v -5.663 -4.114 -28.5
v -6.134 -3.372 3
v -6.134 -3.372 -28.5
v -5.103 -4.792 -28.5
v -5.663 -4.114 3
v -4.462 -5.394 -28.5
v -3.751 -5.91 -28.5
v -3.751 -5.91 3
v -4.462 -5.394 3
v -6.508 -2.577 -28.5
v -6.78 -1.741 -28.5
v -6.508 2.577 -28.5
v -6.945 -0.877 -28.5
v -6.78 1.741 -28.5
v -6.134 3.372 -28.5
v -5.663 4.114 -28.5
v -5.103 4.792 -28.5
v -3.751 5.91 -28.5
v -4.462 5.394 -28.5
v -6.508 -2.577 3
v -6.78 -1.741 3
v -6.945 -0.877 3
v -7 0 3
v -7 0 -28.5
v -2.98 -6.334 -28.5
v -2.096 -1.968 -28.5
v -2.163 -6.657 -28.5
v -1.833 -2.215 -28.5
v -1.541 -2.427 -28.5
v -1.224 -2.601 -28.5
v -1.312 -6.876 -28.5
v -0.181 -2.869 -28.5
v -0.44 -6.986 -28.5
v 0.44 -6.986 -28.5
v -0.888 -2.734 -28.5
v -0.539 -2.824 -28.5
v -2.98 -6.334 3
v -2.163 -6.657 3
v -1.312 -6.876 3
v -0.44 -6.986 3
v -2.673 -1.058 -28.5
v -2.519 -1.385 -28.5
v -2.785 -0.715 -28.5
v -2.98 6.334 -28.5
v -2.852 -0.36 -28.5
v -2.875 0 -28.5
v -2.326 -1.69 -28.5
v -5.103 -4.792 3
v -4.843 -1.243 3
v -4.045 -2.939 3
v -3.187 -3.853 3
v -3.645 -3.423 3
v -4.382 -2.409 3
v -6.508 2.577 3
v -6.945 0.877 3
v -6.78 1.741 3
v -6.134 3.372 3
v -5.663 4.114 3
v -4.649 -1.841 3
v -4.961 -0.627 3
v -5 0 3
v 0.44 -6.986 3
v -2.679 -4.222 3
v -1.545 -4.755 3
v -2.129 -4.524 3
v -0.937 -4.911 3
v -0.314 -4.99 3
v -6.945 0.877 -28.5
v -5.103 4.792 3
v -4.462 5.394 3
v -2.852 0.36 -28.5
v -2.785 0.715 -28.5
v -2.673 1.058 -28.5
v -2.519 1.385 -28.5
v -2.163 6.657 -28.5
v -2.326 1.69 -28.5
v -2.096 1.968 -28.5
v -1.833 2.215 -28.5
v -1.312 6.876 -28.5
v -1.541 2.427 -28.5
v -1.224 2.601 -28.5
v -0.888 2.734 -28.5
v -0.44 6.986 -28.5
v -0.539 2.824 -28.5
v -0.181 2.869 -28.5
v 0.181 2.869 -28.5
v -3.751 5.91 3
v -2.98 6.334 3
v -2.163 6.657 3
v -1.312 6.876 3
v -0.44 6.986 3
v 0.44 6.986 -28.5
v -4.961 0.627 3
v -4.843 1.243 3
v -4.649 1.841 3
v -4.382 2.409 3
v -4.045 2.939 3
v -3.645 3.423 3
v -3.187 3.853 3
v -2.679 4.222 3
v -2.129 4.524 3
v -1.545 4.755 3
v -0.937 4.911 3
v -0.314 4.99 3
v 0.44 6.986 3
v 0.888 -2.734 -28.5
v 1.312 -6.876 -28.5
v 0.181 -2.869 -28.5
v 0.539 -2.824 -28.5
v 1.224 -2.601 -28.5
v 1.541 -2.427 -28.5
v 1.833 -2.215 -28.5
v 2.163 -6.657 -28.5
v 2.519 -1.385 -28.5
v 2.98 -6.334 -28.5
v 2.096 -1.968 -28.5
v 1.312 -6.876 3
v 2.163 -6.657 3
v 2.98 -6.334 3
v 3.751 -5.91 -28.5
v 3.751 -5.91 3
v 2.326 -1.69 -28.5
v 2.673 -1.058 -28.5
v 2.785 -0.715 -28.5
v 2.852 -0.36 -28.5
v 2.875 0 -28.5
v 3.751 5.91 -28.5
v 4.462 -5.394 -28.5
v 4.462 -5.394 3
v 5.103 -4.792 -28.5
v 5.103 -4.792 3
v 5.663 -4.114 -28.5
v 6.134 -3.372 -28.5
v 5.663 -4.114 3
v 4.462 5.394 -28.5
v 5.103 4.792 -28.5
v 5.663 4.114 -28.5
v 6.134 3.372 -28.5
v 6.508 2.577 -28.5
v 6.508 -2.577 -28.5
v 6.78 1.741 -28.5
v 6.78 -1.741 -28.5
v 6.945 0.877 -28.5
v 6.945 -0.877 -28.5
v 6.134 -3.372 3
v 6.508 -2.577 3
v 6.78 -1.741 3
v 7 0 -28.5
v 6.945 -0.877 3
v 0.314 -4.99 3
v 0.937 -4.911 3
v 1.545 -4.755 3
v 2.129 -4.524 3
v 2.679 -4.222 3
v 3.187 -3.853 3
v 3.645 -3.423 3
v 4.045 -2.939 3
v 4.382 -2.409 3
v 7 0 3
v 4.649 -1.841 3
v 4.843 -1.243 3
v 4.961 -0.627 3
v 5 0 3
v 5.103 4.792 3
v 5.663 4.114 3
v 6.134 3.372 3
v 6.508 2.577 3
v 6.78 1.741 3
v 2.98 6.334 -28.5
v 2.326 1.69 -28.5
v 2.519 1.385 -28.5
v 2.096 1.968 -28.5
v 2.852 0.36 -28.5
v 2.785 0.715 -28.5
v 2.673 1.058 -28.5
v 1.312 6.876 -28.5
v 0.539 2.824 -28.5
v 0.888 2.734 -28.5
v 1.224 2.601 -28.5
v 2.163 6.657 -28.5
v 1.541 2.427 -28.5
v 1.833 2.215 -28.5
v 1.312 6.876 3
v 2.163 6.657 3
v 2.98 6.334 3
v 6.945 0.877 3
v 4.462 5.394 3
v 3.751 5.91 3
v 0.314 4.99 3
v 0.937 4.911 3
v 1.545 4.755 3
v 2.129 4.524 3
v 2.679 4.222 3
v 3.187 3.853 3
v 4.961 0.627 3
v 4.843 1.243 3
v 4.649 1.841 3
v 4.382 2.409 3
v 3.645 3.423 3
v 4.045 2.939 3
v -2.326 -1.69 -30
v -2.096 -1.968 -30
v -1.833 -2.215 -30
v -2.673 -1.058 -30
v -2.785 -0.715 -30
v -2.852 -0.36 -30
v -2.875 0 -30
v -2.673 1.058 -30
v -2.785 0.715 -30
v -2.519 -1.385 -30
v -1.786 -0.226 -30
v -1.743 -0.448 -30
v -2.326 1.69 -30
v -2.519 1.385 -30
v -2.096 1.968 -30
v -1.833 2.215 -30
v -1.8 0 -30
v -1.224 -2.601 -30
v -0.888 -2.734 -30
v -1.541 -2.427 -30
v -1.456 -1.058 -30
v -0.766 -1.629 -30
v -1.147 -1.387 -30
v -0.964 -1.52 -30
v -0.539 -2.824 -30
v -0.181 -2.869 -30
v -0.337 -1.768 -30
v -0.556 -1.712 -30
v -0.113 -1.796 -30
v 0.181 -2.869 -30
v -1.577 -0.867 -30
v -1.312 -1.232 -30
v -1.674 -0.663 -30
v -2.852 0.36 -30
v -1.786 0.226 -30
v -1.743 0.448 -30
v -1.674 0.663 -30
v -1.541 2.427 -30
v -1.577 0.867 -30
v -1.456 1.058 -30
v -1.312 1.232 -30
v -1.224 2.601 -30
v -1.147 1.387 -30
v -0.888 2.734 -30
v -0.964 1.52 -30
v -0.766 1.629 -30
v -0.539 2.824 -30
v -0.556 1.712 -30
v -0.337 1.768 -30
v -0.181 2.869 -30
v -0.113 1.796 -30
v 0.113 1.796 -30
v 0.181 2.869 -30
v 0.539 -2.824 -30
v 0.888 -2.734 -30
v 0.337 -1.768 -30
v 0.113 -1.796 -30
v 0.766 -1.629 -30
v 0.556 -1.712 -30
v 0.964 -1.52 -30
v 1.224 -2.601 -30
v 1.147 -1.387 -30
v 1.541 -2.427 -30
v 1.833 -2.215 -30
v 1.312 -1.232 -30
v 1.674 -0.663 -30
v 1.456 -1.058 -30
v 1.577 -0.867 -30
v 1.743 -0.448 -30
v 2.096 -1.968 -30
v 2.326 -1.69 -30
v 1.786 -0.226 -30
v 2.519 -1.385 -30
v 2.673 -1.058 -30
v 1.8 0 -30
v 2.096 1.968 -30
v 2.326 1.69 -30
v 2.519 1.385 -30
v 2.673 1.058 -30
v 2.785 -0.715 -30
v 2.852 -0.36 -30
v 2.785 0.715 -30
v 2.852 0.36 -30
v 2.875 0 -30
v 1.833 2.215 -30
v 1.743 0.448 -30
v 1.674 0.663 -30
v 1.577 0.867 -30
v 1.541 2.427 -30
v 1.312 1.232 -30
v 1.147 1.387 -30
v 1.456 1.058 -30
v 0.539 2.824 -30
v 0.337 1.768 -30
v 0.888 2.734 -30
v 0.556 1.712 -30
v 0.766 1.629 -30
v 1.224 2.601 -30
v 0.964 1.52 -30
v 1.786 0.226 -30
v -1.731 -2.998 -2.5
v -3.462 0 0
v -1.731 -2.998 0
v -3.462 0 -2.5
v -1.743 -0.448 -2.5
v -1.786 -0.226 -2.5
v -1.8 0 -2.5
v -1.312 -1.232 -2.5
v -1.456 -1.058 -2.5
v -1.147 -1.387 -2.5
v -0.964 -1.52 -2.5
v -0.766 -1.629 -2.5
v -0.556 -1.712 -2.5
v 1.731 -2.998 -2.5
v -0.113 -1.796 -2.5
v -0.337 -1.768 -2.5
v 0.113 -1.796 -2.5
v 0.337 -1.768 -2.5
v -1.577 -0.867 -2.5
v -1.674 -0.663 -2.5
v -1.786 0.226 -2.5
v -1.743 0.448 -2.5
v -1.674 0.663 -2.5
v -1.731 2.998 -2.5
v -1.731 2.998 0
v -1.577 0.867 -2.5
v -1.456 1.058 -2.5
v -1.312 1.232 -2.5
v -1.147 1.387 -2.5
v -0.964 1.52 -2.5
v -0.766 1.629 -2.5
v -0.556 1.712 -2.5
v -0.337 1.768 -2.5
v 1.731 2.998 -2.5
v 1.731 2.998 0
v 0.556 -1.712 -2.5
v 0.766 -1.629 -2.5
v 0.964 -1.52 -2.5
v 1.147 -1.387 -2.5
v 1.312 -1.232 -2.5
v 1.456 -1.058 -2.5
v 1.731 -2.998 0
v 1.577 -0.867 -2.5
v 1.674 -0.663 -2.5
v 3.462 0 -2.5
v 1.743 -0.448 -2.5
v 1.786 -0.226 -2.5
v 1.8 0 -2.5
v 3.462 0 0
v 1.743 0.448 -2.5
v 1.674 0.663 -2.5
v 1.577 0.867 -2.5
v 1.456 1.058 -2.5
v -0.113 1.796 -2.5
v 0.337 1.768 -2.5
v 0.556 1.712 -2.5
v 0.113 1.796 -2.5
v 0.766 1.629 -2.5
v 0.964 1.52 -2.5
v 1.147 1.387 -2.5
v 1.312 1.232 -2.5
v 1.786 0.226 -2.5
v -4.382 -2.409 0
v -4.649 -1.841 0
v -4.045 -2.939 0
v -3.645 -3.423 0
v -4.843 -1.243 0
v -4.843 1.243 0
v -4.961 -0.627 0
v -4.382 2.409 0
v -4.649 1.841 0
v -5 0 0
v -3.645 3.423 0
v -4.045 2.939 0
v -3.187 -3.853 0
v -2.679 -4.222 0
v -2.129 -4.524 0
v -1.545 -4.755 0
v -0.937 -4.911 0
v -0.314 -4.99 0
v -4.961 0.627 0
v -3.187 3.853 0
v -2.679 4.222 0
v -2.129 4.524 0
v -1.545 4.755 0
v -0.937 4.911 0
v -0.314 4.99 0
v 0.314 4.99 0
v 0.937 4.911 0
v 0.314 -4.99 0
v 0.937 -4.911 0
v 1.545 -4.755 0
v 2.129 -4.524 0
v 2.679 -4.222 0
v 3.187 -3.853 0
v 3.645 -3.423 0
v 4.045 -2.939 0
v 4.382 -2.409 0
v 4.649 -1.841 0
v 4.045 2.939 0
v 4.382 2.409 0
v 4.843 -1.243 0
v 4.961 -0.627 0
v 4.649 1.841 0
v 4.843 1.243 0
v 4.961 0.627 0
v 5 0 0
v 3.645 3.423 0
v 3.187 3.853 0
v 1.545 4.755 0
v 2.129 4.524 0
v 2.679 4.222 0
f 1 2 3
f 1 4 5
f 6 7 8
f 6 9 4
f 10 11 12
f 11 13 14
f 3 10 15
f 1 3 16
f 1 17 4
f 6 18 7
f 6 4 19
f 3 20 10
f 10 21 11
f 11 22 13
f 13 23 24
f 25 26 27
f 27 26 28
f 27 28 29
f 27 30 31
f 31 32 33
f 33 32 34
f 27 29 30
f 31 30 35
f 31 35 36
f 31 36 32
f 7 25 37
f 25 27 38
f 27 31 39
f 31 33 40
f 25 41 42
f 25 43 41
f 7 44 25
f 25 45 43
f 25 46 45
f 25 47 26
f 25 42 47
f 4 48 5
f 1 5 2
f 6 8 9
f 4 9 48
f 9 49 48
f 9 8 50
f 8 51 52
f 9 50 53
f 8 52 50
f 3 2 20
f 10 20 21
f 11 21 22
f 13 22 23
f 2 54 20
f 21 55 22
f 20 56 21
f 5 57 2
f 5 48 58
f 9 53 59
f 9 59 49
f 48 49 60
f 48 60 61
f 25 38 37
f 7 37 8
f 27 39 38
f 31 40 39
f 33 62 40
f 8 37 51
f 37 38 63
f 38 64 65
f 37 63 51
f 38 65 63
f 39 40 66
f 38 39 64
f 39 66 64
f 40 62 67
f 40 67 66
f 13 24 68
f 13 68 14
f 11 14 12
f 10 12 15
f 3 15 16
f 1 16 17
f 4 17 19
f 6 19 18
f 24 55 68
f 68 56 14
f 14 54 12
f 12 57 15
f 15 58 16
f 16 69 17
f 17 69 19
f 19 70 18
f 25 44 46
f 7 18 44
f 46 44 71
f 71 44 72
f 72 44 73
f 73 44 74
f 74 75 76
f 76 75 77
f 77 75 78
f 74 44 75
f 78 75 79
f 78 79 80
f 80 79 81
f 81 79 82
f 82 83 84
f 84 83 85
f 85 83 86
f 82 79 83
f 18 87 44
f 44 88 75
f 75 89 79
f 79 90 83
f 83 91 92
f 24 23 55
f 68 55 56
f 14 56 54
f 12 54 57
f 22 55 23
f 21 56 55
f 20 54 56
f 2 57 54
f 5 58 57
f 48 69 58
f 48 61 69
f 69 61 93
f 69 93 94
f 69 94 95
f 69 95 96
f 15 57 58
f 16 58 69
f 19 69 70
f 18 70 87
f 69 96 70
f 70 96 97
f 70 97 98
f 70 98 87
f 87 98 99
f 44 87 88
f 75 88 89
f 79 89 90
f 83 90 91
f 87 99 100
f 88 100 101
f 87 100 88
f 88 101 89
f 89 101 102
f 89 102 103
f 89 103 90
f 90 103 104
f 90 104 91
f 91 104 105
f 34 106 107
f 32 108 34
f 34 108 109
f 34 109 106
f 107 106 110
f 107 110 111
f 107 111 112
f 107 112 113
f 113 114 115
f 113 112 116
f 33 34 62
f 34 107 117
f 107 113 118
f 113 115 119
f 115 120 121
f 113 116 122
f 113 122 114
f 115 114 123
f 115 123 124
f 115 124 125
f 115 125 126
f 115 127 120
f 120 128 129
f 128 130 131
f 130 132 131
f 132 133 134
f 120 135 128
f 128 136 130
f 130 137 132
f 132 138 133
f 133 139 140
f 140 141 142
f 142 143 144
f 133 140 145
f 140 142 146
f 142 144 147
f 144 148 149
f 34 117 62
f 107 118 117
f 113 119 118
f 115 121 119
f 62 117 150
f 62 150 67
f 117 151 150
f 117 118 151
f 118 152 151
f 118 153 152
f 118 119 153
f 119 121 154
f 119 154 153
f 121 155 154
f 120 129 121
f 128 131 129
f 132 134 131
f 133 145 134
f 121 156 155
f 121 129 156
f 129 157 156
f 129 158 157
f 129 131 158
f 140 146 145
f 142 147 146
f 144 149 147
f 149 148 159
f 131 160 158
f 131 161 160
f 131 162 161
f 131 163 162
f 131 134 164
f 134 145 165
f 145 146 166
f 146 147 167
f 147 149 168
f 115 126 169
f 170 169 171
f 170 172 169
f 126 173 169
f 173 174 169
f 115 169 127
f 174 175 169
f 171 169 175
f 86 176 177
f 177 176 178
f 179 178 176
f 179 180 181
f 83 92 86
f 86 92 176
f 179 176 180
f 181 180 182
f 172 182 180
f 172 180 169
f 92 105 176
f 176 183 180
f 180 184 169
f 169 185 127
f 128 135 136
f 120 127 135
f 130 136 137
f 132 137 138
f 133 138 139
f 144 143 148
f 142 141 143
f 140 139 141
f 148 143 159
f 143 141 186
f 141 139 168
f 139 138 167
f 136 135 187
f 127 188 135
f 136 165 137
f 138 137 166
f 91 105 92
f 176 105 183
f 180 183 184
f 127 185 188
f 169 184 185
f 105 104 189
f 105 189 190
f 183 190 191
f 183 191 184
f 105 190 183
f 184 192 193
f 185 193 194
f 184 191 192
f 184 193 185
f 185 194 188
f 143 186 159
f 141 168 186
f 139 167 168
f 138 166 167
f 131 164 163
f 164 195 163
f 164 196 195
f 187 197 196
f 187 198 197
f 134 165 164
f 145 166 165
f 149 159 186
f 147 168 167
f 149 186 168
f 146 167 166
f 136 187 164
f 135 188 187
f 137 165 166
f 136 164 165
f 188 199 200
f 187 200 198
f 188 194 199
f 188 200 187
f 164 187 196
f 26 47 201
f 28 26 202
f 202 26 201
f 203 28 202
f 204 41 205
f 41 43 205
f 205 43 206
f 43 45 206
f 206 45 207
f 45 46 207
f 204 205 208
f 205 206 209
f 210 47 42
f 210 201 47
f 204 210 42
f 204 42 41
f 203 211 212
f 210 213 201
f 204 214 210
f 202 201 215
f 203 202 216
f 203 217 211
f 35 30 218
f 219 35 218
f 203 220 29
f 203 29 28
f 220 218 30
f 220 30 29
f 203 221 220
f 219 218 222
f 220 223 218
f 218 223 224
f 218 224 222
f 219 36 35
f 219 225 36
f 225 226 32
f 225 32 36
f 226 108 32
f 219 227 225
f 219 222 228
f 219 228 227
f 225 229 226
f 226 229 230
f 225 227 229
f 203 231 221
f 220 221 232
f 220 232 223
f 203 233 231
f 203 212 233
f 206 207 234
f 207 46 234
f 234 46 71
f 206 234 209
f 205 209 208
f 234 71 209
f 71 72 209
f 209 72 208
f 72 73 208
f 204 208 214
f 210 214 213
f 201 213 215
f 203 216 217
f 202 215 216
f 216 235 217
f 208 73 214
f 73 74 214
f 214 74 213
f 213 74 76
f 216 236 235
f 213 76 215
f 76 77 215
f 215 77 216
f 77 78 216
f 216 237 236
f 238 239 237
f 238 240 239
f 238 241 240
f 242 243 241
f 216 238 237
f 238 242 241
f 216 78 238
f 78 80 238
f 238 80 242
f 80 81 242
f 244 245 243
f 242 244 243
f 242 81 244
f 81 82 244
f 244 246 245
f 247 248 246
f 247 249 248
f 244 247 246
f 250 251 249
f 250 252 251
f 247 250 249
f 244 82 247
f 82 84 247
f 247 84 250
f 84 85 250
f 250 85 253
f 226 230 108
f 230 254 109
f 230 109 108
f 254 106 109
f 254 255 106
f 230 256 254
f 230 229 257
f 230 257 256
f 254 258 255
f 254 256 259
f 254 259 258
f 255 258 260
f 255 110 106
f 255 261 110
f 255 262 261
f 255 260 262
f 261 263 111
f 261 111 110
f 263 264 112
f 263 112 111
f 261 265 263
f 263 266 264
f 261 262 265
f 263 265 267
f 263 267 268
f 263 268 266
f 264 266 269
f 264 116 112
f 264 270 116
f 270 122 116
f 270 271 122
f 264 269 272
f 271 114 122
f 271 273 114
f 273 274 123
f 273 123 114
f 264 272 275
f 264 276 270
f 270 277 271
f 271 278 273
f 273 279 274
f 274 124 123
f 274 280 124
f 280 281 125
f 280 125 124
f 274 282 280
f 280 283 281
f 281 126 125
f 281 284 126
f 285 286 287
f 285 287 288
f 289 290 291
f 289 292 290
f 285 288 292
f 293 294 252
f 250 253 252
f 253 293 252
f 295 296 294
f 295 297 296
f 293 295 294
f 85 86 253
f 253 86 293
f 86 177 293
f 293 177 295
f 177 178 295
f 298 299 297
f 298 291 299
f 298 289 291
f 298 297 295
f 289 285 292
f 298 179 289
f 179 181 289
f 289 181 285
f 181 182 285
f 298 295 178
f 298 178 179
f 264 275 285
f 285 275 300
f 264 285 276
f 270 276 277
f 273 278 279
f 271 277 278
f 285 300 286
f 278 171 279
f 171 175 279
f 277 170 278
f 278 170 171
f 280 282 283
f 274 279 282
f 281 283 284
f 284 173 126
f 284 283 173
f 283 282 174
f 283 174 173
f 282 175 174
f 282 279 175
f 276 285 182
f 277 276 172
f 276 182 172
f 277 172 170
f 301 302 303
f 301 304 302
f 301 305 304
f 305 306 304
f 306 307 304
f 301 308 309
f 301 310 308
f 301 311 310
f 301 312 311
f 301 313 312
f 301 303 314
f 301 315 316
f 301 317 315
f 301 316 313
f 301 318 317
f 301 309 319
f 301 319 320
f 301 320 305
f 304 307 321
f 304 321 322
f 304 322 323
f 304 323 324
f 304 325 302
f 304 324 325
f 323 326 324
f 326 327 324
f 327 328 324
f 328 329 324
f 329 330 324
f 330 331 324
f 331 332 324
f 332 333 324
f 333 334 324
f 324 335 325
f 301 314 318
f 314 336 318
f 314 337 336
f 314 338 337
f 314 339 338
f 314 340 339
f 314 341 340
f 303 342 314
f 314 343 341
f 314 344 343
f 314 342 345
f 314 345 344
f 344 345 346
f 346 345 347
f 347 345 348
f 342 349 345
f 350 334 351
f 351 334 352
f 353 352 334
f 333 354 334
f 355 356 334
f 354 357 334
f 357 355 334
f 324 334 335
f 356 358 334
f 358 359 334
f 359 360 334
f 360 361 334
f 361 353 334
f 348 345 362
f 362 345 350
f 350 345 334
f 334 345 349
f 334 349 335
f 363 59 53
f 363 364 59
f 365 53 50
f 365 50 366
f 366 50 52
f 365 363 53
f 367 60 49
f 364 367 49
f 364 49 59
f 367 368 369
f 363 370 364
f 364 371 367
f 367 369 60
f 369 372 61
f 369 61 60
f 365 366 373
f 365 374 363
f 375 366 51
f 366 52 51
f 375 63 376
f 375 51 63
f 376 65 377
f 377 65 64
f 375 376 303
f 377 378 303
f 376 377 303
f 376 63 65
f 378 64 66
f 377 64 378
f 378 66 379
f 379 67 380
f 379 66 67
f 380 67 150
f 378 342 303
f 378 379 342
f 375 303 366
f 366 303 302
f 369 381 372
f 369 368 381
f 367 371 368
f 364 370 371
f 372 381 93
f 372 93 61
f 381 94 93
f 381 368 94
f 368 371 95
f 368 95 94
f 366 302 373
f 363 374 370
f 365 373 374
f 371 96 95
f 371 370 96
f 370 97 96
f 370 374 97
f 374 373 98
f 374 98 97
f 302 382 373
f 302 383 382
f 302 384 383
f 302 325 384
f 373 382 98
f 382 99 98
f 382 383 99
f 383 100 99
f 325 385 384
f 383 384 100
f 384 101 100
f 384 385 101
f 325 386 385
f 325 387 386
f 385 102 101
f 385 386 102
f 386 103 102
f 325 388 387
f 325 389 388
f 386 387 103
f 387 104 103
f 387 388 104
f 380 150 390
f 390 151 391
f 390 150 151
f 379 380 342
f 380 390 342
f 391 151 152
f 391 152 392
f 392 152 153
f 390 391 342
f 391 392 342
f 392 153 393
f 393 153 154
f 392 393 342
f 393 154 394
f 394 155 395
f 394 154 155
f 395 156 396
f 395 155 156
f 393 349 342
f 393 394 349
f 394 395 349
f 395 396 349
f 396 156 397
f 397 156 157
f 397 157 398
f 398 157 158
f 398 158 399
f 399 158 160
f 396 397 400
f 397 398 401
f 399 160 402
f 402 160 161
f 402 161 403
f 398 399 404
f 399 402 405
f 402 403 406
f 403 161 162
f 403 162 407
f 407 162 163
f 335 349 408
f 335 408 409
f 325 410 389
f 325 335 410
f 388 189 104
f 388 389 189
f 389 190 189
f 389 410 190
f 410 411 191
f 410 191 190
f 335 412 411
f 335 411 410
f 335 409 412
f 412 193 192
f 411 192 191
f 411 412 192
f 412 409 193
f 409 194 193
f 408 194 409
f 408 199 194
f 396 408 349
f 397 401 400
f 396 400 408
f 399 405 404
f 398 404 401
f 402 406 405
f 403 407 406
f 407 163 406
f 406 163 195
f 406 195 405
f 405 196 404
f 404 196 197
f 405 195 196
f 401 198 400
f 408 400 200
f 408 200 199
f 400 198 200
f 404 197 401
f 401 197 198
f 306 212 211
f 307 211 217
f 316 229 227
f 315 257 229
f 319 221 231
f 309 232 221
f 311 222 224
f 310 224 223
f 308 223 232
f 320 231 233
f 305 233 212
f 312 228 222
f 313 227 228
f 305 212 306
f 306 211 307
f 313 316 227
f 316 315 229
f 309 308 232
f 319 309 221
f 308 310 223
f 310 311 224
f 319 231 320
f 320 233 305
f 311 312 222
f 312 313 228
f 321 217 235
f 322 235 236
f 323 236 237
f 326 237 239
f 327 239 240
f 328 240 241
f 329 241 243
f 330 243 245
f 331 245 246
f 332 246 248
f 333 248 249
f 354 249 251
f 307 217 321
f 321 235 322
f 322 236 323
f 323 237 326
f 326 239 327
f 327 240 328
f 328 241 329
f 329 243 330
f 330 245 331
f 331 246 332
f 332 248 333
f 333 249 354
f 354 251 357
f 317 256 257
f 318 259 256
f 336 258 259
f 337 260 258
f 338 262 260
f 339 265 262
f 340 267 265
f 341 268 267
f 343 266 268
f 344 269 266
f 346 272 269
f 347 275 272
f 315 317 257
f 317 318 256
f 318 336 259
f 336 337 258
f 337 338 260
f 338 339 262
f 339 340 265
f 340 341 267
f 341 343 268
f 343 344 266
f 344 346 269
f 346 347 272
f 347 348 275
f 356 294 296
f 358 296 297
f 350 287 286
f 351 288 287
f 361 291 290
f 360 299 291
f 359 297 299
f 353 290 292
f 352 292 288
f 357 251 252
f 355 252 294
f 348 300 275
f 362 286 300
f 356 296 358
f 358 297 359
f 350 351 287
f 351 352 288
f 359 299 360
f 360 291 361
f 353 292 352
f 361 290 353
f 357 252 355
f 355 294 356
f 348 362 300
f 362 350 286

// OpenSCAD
$fn = 50;

difference() {
	union() {
		translate(v = [0, 0, -28.5]) {
			cylinder(h = 31.5, r = 7.0);
		}
		#translate(v = [0, 0, -30.0]) {
			cylinder(h = 30, r = 2.875);
		}
	}
	union() {
		translate(v = [0, 0, 0]) {
			rotate(a = [0, 0, 0]) {
				difference() {
					union() {
						translate(v = [0, 0, -2.5]) {
							linear_extrude(height = 2.5) {
								polygon(points = [[3.4619999999999997, 0.0], [1.7310000000000003, 2.9981799479017264], [-1.7309999999999992, 2.9981799479017264], [-3.4619999999999997, 4.2397272186481365e-16], [-1.7310000000000014, -2.998179947901726], [1.7309999999999977, -2.9981799479017277]]);
							}
						}
					}
					union();
				}
			}
		}
		#cylinder(h = 3, r = 5.0);
		#translate(v = [0, 0, -100.0]) {
			cylinder(h = 200, r = 1.8);
		}
	}
}
